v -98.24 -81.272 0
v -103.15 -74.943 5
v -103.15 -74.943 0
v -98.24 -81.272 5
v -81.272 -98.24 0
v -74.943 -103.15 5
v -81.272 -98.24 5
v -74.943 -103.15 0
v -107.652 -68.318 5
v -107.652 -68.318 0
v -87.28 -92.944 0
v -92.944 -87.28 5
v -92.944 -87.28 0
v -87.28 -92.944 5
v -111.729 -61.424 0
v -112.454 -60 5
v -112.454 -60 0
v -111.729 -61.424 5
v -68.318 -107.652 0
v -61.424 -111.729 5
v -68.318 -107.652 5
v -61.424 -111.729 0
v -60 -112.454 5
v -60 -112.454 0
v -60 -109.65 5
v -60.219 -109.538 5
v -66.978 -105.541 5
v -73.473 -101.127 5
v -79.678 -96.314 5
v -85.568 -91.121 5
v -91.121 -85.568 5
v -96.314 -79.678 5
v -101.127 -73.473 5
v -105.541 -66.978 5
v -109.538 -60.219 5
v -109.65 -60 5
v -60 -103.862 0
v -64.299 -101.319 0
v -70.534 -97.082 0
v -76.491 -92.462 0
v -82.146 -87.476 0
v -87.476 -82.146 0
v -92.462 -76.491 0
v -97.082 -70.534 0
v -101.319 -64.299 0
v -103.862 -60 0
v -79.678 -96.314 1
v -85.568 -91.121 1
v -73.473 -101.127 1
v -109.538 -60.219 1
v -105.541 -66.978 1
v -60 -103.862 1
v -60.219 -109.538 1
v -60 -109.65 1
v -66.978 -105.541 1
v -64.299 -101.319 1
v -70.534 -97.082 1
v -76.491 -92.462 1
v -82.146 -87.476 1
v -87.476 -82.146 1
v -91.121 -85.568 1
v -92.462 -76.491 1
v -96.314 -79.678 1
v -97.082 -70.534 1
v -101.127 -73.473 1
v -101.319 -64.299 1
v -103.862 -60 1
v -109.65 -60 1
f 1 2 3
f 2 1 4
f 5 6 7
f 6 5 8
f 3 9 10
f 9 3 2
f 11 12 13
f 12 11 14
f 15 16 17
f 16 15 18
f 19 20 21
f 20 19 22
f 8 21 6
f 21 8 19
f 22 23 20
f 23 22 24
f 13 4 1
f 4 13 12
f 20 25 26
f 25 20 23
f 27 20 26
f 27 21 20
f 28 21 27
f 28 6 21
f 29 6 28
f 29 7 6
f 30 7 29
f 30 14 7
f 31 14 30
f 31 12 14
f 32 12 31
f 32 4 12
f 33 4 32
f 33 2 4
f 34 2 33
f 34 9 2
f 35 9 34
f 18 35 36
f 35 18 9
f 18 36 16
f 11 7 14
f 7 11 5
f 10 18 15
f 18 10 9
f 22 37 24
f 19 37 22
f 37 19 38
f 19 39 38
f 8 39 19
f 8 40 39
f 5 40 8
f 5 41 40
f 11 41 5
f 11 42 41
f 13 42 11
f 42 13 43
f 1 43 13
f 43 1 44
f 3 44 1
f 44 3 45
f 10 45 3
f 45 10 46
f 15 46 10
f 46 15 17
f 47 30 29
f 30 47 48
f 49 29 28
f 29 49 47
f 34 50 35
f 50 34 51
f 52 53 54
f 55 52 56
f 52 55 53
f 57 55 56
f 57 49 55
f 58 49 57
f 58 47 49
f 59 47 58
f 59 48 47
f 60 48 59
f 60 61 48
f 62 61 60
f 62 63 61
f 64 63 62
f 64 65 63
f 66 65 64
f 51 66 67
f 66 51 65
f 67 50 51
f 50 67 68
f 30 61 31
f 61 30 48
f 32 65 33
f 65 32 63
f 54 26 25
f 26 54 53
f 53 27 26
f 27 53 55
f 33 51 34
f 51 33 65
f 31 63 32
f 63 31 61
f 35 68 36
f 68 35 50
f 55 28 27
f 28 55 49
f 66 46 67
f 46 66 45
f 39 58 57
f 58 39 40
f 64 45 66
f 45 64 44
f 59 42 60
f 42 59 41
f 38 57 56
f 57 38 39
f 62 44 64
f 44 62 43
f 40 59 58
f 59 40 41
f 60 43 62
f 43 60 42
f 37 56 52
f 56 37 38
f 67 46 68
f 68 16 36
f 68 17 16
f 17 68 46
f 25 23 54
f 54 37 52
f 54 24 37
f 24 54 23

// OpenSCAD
$fn=100;

difference(){
    linear_extrude(5) circle (d=255);
    translate([0,0,+1]) linear_extrude(12.0) circle (d=250);
    translate([0,0,-1]) linear_extrude(3) circle (d=240);
    
    #translate([-210,-60,-1]) cube([500,200,8]);
    #translate([-60,-240,-1]) cube([200,500,7]);
}
